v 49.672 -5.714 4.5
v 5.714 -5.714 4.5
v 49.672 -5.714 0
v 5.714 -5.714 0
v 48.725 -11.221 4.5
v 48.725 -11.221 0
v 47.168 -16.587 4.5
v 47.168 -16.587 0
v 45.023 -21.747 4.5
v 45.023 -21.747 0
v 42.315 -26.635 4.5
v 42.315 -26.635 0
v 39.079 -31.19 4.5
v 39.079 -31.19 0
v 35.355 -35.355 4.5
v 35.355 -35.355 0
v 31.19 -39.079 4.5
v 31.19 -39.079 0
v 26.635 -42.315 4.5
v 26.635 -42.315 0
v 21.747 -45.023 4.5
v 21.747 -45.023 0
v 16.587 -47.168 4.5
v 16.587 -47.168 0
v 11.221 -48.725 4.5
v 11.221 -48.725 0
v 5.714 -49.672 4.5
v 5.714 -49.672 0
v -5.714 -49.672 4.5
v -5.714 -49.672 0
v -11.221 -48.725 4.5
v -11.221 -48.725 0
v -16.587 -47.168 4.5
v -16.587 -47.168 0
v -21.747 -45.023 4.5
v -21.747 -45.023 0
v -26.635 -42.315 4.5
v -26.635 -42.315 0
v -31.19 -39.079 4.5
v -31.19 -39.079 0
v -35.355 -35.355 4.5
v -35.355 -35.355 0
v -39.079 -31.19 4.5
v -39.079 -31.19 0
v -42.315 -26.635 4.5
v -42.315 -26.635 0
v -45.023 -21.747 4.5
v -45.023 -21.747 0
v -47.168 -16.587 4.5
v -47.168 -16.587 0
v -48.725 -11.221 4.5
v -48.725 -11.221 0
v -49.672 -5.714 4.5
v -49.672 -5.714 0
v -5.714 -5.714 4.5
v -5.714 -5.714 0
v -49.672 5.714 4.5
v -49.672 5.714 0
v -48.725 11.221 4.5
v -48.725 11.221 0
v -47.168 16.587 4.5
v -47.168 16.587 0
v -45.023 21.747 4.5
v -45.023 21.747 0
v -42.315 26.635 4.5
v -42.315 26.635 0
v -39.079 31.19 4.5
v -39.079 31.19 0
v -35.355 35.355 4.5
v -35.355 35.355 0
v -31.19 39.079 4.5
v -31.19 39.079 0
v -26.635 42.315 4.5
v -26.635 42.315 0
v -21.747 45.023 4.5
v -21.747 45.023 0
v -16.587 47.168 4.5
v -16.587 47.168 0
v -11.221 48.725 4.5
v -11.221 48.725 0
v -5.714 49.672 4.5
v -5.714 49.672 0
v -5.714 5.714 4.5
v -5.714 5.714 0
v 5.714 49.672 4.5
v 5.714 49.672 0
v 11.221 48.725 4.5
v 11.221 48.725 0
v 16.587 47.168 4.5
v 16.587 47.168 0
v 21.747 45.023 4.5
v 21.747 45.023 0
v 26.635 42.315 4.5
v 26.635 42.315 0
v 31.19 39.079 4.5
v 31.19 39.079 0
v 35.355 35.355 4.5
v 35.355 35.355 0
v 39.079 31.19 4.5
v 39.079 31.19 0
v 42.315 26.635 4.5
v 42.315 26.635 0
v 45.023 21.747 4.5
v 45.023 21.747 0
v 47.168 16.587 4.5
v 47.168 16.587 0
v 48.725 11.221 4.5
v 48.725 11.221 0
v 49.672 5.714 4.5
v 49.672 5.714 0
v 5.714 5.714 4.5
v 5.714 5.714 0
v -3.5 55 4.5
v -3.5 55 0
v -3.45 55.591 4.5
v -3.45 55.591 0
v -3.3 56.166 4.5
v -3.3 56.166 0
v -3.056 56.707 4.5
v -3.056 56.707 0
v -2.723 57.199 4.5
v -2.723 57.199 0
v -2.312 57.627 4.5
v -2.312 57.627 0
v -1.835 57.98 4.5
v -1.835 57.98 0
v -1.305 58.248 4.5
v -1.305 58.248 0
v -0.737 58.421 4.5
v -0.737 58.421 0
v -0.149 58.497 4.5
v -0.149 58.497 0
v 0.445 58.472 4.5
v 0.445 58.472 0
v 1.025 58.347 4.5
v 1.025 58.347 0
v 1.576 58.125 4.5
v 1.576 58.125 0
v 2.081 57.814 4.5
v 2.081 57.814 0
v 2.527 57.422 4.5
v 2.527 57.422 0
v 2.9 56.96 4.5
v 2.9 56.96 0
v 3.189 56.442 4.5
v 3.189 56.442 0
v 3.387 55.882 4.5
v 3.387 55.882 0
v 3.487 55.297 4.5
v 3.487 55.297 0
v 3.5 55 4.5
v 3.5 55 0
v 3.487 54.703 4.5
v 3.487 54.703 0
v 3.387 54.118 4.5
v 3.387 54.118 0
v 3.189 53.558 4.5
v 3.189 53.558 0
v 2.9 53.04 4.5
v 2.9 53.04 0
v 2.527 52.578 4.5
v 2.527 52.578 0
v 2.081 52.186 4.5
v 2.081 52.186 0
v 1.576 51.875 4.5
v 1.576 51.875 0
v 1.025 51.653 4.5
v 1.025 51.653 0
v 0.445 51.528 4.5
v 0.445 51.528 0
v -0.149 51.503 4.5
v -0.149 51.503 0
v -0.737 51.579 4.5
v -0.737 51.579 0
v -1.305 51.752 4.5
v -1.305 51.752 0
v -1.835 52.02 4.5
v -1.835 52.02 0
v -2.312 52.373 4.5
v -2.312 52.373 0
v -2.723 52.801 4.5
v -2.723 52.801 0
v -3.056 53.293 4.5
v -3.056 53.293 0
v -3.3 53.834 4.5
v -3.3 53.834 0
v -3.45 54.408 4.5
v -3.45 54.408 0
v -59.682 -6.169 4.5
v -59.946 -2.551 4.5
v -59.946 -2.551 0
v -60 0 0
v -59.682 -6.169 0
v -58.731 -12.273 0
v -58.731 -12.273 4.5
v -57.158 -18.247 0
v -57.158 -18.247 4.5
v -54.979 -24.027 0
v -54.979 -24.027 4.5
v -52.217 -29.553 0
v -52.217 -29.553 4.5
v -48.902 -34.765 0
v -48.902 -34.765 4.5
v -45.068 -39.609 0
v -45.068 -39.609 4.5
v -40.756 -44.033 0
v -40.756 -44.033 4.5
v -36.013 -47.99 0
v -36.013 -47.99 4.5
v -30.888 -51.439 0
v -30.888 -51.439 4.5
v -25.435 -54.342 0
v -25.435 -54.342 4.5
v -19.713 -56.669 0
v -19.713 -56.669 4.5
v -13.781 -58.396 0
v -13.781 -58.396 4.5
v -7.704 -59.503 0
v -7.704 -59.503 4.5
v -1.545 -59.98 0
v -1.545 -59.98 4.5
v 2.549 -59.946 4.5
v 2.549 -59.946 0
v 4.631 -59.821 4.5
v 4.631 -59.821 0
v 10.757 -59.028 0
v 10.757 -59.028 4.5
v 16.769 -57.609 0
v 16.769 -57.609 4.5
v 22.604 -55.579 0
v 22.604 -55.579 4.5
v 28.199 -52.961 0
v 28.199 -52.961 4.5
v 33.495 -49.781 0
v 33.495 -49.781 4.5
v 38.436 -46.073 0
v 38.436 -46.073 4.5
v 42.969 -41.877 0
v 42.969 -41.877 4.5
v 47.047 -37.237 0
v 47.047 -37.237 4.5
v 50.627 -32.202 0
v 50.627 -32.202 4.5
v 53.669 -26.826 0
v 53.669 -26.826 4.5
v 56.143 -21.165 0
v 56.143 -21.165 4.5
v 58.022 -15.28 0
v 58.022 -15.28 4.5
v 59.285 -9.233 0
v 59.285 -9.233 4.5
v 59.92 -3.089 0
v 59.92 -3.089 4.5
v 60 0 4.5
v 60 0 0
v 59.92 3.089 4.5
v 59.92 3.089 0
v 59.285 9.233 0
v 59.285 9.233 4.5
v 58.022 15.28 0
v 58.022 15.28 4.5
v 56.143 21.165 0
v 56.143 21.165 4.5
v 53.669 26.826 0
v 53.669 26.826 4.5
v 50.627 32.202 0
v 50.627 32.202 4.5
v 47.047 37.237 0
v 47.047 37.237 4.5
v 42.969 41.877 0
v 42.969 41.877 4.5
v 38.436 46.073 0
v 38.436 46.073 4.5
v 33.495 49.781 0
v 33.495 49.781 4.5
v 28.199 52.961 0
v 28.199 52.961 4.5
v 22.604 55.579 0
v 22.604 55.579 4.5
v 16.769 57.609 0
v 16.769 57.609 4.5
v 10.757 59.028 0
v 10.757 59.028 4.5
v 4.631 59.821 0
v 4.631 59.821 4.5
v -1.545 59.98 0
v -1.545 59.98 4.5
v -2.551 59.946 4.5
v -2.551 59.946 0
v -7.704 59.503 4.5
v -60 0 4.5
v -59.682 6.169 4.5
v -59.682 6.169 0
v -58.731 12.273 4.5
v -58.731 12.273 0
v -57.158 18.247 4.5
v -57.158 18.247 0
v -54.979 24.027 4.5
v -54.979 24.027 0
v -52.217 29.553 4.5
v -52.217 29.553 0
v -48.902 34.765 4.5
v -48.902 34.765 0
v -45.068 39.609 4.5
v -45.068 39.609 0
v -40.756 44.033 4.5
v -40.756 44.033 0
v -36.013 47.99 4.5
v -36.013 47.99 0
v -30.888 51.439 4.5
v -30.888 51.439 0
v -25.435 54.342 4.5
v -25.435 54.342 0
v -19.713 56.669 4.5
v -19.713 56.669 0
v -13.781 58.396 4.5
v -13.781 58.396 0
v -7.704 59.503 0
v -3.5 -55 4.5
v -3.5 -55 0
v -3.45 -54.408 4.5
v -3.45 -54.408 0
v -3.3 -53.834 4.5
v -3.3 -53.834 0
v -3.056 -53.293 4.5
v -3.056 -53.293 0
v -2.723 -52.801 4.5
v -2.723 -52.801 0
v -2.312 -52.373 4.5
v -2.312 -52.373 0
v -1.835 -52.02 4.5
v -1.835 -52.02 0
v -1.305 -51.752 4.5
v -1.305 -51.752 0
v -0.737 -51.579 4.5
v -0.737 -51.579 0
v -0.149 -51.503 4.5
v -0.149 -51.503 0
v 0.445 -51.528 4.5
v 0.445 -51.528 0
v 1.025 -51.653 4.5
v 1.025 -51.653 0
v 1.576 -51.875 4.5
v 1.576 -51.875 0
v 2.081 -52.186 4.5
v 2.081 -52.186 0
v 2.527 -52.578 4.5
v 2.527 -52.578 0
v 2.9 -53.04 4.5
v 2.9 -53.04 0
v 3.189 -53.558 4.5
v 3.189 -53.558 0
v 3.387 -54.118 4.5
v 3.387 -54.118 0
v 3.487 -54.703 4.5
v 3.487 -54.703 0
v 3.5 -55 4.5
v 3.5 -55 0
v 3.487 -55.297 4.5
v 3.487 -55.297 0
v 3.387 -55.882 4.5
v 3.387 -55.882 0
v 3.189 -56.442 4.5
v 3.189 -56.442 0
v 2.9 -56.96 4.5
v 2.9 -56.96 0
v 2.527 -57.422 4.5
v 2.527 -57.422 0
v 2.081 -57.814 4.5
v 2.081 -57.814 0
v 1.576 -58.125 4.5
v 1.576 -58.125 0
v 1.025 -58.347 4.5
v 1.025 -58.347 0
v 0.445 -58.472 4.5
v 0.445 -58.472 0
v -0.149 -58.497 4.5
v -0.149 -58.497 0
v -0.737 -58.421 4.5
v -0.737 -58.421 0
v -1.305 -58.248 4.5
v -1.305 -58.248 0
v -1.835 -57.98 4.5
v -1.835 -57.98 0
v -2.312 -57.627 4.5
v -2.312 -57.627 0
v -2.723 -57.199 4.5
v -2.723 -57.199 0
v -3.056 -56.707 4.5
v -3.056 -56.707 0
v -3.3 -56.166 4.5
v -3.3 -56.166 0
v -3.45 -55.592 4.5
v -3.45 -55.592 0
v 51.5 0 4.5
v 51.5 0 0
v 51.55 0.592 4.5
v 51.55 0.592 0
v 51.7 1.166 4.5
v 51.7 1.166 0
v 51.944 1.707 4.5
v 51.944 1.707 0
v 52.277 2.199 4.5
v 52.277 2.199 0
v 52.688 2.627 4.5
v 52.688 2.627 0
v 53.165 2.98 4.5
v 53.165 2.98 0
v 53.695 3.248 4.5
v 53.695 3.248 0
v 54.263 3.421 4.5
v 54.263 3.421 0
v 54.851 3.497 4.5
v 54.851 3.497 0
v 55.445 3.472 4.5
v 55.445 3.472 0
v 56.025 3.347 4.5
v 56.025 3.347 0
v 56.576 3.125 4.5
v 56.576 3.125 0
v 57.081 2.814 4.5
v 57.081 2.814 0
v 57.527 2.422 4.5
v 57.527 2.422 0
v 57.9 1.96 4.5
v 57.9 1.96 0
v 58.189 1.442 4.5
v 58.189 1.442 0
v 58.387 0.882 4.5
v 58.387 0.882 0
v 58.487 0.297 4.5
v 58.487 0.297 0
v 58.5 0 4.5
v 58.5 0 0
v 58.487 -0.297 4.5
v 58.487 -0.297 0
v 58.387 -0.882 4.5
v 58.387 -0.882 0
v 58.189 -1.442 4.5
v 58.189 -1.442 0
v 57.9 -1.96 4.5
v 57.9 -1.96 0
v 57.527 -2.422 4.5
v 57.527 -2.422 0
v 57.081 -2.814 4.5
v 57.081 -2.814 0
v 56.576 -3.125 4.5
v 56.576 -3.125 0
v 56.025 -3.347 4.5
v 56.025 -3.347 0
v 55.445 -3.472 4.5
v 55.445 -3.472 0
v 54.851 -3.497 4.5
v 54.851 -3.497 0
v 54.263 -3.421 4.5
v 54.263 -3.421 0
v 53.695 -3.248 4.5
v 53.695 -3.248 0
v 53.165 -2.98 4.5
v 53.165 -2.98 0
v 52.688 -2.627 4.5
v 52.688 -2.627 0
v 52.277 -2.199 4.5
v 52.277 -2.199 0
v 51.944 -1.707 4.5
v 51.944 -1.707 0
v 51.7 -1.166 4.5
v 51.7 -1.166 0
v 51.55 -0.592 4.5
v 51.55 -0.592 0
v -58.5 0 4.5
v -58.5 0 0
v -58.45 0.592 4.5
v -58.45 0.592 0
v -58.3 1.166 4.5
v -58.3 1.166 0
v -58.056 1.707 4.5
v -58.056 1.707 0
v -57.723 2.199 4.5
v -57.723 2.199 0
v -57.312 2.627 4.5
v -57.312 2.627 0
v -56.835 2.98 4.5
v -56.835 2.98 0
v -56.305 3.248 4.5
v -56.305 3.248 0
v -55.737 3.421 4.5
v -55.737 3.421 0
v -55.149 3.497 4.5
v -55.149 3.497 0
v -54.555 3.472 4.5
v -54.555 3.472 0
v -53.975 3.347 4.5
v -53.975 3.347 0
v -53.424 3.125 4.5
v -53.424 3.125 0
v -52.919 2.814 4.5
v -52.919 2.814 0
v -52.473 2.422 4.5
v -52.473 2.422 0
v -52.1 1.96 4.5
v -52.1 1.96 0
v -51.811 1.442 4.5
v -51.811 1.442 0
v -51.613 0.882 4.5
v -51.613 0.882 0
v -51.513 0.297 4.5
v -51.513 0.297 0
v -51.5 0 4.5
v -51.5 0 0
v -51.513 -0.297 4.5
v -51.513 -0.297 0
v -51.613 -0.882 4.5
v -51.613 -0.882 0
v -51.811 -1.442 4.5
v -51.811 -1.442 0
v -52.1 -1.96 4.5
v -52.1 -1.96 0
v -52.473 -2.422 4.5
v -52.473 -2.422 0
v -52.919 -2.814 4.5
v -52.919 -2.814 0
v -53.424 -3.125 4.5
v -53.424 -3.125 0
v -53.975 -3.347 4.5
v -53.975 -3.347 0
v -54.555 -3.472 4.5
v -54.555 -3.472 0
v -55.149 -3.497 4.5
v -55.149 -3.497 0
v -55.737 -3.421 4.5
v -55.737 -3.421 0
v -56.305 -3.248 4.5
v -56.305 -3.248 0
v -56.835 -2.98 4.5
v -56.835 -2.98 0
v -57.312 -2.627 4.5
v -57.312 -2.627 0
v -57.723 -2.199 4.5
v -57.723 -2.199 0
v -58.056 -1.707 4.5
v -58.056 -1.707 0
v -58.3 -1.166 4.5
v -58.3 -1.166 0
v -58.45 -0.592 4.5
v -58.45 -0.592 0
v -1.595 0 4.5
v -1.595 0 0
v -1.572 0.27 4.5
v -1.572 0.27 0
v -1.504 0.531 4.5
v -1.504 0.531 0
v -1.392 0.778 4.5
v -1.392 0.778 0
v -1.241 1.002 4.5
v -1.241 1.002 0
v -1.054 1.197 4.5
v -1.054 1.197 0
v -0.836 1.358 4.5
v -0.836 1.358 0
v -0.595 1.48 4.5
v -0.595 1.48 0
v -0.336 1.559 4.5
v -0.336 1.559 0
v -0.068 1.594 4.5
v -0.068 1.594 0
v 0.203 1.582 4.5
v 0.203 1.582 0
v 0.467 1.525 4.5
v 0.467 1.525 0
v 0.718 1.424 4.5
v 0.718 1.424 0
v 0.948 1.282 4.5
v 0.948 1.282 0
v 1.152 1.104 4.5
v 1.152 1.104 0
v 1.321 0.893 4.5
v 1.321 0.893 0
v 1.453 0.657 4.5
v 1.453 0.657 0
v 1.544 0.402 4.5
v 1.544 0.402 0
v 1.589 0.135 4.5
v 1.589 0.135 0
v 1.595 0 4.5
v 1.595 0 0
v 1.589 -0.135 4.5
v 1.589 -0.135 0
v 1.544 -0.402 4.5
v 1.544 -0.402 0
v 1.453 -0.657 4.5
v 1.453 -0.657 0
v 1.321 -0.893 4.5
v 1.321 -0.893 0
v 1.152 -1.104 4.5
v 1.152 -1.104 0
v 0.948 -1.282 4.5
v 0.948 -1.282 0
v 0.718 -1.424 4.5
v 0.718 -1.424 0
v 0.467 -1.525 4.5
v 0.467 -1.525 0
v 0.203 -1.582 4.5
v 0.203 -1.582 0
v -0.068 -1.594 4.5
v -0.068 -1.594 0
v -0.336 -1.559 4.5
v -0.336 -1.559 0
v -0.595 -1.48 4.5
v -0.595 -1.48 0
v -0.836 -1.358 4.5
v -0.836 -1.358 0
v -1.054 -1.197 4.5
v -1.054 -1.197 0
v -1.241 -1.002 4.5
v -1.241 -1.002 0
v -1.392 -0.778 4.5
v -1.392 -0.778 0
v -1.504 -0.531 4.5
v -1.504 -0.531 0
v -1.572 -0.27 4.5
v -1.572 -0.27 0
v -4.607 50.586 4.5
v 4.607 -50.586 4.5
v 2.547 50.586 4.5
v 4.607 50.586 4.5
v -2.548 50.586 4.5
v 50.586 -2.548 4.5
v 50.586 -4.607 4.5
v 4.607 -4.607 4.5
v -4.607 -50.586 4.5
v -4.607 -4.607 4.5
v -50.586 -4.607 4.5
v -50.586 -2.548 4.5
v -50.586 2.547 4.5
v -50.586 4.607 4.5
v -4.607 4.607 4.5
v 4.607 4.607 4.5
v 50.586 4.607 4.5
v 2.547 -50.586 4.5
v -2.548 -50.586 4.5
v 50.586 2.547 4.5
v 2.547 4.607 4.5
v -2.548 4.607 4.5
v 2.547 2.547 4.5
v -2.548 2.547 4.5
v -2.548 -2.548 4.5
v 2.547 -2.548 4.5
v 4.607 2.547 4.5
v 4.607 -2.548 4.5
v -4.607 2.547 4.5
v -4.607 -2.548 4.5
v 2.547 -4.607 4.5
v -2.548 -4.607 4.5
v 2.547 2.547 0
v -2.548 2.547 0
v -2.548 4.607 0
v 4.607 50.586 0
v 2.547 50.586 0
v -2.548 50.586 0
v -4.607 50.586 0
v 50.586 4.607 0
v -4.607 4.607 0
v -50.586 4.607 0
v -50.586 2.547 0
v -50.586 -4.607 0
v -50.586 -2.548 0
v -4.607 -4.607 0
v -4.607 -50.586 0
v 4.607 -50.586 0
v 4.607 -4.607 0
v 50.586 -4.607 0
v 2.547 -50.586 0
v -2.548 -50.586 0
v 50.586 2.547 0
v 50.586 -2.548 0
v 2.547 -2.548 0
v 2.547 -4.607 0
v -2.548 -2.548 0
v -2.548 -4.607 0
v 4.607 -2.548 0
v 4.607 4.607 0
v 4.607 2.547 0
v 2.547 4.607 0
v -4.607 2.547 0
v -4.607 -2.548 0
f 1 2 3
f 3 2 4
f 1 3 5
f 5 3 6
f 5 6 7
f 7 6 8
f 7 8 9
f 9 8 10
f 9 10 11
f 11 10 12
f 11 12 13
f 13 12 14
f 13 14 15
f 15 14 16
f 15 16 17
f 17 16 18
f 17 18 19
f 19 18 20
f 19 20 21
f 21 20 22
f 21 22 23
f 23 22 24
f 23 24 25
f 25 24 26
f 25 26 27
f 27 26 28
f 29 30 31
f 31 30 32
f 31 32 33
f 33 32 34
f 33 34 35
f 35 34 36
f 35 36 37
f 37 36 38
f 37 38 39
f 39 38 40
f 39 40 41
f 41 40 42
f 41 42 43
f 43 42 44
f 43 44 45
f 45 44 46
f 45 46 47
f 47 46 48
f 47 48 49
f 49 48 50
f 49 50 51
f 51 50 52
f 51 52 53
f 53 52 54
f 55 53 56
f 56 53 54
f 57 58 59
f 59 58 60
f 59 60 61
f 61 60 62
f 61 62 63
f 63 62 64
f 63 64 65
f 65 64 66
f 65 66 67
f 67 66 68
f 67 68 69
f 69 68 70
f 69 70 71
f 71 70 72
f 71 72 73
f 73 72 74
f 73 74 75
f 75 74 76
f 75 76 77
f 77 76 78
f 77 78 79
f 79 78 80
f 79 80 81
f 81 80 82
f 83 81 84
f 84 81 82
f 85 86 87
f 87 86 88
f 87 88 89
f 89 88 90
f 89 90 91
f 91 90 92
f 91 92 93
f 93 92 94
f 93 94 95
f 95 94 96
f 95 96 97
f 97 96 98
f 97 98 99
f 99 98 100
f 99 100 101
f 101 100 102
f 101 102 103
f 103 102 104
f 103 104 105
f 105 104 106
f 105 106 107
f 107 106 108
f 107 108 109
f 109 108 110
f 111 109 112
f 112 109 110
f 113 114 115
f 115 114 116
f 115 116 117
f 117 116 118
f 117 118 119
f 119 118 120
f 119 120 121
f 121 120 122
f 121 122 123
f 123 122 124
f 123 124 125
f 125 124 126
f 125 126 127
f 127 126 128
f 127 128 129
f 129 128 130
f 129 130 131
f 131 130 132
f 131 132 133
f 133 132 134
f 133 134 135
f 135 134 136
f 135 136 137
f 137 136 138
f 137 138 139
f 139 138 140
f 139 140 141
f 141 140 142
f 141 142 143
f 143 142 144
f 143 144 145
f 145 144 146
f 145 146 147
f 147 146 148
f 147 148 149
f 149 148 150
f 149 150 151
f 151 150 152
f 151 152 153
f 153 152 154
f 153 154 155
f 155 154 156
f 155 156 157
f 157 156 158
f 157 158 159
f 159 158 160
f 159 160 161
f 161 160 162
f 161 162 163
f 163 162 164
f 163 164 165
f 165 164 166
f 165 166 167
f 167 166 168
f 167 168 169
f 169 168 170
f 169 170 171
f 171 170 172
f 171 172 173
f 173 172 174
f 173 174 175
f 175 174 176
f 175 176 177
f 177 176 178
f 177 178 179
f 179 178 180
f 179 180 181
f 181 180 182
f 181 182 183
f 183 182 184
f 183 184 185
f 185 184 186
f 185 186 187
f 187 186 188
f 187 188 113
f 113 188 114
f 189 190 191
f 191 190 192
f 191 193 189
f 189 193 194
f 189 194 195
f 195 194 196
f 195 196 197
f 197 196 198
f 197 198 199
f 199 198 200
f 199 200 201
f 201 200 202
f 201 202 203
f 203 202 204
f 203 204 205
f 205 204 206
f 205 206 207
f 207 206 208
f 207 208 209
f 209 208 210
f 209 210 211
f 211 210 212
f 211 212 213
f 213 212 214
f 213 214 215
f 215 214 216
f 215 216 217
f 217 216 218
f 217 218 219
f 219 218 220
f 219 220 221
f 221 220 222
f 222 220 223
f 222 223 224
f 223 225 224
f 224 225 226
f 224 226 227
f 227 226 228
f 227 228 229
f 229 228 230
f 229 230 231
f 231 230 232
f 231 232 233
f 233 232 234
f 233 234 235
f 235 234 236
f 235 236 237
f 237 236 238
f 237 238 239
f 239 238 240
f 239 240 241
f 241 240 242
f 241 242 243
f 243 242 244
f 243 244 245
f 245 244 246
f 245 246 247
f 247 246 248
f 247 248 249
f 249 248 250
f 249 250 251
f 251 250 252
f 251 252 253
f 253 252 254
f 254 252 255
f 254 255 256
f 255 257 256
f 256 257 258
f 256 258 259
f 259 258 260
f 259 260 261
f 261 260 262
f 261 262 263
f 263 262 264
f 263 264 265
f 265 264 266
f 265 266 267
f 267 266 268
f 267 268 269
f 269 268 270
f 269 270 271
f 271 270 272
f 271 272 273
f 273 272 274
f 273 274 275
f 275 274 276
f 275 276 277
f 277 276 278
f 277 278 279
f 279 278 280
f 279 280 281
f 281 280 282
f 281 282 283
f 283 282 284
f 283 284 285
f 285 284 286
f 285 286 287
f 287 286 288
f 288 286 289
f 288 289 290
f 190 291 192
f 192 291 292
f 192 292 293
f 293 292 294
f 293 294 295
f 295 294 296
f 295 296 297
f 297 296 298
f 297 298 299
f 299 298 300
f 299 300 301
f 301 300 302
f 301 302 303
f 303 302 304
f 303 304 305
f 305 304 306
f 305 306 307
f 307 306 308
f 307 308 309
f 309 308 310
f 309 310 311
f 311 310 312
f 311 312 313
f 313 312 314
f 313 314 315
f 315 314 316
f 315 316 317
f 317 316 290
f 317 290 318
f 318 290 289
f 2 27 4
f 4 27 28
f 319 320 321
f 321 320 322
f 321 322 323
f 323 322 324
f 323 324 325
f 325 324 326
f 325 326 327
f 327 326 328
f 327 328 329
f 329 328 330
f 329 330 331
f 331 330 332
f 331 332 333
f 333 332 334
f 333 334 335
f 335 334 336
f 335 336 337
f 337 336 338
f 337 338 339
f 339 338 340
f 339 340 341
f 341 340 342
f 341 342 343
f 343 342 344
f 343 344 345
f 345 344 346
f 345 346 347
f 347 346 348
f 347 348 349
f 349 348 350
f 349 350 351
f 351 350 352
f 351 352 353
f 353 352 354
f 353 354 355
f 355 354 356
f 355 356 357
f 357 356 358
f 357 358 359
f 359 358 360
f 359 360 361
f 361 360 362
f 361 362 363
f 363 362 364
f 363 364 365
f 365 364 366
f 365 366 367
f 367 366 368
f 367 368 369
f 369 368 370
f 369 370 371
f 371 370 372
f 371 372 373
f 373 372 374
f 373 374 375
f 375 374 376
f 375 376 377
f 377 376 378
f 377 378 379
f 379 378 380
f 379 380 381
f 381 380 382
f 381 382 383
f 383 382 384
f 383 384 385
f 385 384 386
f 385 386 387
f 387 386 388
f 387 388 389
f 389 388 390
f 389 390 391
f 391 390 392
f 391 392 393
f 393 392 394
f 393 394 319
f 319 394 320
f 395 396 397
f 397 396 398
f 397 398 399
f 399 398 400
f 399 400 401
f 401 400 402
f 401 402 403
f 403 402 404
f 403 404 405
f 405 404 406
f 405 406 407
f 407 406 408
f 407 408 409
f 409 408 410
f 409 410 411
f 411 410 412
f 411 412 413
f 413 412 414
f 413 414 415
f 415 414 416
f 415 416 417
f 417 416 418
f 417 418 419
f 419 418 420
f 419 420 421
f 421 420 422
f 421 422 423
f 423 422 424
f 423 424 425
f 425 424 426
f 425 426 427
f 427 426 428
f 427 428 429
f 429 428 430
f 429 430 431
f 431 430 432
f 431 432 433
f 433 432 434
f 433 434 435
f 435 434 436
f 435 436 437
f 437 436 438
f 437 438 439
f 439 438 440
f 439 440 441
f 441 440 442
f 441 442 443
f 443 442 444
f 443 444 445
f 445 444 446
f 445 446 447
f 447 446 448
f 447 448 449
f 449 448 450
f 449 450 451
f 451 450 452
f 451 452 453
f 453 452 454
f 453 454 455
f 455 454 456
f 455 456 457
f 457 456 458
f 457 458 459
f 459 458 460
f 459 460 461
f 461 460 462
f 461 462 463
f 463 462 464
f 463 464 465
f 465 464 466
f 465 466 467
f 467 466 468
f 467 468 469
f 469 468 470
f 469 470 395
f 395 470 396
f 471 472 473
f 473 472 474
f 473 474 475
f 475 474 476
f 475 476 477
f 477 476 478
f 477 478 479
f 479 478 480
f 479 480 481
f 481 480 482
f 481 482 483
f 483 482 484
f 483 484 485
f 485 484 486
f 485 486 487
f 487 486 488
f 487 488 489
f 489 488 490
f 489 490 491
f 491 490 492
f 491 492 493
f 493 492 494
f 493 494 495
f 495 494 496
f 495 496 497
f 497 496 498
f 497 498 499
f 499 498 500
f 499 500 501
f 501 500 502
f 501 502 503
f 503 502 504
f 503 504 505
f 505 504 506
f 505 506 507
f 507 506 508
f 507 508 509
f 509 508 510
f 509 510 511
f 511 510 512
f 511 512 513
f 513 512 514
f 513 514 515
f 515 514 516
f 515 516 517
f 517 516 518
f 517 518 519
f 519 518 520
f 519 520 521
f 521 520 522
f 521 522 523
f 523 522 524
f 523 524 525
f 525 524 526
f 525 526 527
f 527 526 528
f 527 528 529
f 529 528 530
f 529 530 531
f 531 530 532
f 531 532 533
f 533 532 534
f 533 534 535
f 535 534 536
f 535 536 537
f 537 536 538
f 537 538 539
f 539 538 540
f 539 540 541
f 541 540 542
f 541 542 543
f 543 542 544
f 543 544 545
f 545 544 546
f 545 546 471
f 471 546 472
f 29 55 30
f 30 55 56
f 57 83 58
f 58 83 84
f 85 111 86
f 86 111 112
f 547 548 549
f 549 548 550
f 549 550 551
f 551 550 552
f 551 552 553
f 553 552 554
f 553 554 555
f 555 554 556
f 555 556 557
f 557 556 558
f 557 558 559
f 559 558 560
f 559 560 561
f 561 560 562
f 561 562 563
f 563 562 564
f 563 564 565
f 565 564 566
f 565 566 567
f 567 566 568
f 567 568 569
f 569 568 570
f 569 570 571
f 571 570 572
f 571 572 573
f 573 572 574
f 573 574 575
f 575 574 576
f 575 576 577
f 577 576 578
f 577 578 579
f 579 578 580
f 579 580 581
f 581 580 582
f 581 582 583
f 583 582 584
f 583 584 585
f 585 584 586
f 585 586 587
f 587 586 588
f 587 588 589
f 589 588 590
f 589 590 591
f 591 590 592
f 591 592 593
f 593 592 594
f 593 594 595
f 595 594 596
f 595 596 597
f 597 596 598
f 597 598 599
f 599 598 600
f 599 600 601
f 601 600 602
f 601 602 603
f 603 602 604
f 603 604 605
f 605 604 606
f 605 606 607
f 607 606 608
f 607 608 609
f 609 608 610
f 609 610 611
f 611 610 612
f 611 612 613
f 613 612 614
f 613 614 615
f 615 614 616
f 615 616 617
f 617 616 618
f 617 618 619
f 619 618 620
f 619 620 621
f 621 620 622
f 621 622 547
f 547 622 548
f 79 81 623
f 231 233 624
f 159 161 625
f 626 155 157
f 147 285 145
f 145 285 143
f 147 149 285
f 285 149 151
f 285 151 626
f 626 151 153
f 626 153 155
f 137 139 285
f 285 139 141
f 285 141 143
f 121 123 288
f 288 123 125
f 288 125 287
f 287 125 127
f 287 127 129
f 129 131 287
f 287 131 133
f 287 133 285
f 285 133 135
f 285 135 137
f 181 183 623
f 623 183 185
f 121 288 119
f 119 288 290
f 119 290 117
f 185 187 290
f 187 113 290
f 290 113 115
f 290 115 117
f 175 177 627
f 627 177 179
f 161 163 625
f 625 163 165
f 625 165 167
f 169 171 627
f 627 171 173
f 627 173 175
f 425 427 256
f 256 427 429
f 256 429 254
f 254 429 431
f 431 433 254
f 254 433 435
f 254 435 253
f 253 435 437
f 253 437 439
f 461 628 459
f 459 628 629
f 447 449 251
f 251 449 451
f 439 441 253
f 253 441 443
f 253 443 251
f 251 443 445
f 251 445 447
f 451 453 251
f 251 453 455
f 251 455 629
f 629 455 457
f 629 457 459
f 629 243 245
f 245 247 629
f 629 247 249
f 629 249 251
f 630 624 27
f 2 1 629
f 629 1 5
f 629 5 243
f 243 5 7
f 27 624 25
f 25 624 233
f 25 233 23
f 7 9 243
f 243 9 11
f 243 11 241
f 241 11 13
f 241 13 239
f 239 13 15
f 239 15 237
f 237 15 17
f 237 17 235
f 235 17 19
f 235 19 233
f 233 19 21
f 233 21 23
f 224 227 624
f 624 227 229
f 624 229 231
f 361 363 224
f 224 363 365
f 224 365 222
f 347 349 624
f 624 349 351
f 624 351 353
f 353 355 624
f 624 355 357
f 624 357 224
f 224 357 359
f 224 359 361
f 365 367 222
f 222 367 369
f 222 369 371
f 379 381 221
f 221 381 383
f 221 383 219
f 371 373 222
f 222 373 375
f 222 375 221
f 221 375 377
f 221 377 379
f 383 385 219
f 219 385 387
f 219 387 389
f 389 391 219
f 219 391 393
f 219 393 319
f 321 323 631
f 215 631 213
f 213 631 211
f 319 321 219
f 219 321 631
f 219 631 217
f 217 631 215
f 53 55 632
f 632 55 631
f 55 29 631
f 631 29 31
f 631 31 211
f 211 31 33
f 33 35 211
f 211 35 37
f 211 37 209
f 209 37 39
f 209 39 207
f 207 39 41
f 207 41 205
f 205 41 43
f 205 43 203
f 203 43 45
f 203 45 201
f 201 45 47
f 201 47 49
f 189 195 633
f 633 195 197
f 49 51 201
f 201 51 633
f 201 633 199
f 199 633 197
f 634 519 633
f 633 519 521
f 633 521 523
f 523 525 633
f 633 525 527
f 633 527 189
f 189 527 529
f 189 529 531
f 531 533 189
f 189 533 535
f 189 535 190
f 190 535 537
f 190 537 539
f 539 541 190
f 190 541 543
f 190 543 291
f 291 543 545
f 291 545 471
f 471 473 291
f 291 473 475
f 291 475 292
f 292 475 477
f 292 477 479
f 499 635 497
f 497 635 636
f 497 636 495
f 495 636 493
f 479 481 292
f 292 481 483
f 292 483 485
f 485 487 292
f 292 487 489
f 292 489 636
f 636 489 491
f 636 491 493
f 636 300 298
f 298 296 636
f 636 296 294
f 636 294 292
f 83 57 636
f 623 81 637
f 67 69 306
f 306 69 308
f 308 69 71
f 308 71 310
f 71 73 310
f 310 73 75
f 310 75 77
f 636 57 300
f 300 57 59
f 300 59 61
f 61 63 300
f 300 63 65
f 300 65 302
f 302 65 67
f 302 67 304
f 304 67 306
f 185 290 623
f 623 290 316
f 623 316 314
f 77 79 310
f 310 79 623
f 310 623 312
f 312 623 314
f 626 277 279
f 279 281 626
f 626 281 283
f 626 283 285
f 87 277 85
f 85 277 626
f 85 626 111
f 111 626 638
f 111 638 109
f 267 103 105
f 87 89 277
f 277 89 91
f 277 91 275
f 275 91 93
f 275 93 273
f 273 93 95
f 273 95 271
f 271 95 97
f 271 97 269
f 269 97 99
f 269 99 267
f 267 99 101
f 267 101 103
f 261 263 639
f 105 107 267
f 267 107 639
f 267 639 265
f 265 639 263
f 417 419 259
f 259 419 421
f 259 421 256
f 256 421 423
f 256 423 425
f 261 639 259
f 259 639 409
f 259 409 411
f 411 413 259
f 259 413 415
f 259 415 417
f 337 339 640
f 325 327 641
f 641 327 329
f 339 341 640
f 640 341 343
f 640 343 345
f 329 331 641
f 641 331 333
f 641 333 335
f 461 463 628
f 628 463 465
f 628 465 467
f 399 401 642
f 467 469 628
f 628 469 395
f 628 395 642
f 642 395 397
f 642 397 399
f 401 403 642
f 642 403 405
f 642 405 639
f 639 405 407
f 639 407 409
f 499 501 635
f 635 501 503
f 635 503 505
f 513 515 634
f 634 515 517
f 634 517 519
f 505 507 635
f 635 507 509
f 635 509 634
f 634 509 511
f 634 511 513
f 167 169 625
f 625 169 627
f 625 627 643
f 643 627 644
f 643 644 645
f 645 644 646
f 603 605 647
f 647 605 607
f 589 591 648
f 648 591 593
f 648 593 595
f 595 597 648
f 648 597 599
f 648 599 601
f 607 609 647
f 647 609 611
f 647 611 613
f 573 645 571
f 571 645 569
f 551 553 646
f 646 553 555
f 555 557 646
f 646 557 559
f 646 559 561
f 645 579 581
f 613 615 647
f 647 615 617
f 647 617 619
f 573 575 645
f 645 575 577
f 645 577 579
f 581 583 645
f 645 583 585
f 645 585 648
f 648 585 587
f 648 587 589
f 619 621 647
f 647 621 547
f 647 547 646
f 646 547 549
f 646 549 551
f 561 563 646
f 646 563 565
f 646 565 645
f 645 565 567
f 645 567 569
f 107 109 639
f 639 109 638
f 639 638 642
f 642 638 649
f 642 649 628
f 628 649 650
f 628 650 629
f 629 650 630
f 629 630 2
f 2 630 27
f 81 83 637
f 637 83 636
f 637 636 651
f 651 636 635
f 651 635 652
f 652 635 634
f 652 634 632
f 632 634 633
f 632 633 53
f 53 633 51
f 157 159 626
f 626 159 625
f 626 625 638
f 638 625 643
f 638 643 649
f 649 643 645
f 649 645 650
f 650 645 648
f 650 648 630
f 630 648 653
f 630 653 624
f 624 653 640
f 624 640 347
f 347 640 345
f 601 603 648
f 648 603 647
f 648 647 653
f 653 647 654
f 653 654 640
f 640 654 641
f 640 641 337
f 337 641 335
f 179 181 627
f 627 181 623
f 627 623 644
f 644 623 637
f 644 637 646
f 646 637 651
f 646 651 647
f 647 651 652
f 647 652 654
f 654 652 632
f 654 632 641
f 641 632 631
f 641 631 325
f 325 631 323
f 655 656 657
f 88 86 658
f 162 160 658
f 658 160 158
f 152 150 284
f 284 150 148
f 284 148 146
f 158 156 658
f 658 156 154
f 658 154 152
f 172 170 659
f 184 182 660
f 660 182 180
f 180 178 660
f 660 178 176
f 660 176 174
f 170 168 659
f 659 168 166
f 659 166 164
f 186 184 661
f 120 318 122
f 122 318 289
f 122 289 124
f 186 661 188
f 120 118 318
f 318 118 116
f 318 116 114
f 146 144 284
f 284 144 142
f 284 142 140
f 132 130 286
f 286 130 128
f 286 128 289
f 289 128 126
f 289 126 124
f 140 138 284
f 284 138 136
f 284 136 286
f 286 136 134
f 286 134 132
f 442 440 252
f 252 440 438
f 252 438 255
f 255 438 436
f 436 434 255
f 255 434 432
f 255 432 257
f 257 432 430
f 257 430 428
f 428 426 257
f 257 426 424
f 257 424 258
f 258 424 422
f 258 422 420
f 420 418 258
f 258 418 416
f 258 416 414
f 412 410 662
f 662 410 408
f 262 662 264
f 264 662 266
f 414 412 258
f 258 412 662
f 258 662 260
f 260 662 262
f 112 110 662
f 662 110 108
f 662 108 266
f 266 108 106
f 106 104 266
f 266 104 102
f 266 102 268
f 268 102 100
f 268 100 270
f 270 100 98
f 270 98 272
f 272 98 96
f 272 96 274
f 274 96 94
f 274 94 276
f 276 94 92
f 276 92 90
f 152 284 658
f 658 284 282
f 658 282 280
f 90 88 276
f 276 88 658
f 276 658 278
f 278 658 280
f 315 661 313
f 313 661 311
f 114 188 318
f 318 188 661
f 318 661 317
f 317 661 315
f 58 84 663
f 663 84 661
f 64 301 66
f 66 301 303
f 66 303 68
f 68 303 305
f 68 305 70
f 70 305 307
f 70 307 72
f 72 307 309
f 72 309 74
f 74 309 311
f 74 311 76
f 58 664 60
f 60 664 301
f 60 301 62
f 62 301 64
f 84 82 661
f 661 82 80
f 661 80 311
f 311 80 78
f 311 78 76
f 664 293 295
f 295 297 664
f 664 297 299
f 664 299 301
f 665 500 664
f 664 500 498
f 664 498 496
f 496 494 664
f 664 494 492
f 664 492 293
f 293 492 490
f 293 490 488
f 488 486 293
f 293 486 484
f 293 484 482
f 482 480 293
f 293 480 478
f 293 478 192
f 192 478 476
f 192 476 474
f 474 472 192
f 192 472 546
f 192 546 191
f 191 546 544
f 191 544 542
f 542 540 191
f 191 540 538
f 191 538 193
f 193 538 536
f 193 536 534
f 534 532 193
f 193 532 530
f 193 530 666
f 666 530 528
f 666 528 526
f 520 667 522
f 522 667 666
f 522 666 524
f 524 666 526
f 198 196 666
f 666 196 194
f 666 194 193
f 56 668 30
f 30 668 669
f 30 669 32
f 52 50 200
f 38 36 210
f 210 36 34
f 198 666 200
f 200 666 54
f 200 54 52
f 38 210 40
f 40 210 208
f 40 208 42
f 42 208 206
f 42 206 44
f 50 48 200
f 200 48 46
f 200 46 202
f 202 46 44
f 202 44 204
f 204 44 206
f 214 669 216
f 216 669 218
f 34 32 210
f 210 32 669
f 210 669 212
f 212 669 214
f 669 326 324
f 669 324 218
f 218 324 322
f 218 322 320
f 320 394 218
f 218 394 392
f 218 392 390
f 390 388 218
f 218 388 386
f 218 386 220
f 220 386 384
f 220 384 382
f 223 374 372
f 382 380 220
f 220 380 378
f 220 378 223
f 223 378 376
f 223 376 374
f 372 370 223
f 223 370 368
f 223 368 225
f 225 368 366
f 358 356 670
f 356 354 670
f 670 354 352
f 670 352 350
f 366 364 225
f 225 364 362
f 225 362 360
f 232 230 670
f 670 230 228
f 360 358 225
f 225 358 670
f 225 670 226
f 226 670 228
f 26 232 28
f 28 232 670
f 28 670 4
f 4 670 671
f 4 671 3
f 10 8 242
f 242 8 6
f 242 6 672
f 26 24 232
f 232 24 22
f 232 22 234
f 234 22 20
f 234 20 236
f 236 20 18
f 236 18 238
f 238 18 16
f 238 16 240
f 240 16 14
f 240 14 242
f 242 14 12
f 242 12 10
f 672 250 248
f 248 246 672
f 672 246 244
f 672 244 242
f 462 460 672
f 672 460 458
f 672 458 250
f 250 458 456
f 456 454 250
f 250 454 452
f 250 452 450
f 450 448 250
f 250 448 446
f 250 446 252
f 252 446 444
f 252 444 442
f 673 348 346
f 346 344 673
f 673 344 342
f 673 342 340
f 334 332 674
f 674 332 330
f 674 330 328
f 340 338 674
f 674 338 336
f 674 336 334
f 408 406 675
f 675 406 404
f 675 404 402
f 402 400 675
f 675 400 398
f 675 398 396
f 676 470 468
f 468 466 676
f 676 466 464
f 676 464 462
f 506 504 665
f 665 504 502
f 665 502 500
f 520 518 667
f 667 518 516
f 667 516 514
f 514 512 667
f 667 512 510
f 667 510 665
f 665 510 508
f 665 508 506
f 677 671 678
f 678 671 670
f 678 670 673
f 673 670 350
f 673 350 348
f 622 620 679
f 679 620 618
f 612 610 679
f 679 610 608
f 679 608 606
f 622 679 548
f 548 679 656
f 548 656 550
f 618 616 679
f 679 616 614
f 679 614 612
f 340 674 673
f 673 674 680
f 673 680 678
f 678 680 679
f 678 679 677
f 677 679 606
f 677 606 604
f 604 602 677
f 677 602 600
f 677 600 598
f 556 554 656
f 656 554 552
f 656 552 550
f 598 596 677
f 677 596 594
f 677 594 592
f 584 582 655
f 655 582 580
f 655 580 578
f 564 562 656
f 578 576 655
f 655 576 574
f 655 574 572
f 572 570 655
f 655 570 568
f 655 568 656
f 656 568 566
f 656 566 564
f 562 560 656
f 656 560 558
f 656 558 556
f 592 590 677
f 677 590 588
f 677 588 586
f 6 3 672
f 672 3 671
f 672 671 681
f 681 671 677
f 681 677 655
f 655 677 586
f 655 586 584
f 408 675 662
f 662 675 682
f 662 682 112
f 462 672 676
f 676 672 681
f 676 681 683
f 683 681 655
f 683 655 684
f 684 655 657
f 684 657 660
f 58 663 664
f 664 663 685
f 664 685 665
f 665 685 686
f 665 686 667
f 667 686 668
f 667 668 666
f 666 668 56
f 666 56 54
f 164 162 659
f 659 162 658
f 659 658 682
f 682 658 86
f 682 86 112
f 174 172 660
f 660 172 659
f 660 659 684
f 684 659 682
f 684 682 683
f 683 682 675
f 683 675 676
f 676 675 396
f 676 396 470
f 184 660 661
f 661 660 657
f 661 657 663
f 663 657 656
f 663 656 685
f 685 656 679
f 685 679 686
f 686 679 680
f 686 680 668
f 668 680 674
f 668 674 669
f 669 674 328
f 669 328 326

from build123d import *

# Parameters (mm, degrees)
ESQUISSE1_R        = 60
ESQUISSE1_R_2      = 3.5
ESQUISSE1_R_3      = 50
ESQUISSE1_R_4      = 1.595
BOSS_EXTRU_4_DEPTH = 4.5


with BuildPart() as part:
    # Esquisse1 → Boss.-Extru.4 (new body)
    # profile 1 of 2: a face of its own
    with BuildSketch(Plane.XY):
        Circle(ESQUISSE1_R)
        with Locations((-55, 0)):
            Circle(ESQUISSE1_R_2, mode=Mode.SUBTRACT)
        with Locations((55, 0)):
            Circle(ESQUISSE1_R_2, mode=Mode.SUBTRACT)
        with Locations((0, -55)):
            Circle(ESQUISSE1_R_2, mode=Mode.SUBTRACT)
        Circle(ESQUISSE1_R_3, mode=Mode.SUBTRACT)
        with Locations((0, 55)):
            Circle(ESQUISSE1_R_2, mode=Mode.SUBTRACT)
    # profile 2 of 2: a face of its own
    with BuildSketch(Plane.XY):
        with BuildLine():
            Line((5.714285714, 5.714285714), (5.714285714, 49.672396145))
            ThreePointArc((5.714285714, 49.672396145), (0, 50), (-5.714285714, 49.672396145))
            Line((-5.714285714, 49.672396145), (-5.714285714, 5.714285714))
            Line((-5.714285714, 5.714285714), (-49.672396145, 5.714285714))
            ThreePointArc((-49.672396145, 5.714285714), (-50, 0), (-49.672396145, -5.714285714))
            Line((-49.672396145, -5.714285714), (-5.714285714, -5.714285714))
            Line((-5.714285714, -5.714285714), (-5.714285714, -49.672396145))
            ThreePointArc((-5.714285714, -49.672396145), (0, -50), (5.714285714, -49.672396145))
            Line((5.714285714, -49.672396145), (5.714285714, -5.714285714))
            Line((5.714285714, -5.714285714), (49.672396145, -5.714285714))
            ThreePointArc((49.672396145, -5.714285714), (49.918031848, -2.861834443), (50, 0))
            ThreePointArc((50, 0), (49.918031848, 2.861834443), (49.672396145, 5.714285714))
            Line((49.672396145, 5.714285714), (5.714285714, 5.714285714))
        make_face()
        Circle(ESQUISSE1_R_4, mode=Mode.SUBTRACT)
    extrude(amount=BOSS_EXTRU_4_DEPTH)


solid = part.part
